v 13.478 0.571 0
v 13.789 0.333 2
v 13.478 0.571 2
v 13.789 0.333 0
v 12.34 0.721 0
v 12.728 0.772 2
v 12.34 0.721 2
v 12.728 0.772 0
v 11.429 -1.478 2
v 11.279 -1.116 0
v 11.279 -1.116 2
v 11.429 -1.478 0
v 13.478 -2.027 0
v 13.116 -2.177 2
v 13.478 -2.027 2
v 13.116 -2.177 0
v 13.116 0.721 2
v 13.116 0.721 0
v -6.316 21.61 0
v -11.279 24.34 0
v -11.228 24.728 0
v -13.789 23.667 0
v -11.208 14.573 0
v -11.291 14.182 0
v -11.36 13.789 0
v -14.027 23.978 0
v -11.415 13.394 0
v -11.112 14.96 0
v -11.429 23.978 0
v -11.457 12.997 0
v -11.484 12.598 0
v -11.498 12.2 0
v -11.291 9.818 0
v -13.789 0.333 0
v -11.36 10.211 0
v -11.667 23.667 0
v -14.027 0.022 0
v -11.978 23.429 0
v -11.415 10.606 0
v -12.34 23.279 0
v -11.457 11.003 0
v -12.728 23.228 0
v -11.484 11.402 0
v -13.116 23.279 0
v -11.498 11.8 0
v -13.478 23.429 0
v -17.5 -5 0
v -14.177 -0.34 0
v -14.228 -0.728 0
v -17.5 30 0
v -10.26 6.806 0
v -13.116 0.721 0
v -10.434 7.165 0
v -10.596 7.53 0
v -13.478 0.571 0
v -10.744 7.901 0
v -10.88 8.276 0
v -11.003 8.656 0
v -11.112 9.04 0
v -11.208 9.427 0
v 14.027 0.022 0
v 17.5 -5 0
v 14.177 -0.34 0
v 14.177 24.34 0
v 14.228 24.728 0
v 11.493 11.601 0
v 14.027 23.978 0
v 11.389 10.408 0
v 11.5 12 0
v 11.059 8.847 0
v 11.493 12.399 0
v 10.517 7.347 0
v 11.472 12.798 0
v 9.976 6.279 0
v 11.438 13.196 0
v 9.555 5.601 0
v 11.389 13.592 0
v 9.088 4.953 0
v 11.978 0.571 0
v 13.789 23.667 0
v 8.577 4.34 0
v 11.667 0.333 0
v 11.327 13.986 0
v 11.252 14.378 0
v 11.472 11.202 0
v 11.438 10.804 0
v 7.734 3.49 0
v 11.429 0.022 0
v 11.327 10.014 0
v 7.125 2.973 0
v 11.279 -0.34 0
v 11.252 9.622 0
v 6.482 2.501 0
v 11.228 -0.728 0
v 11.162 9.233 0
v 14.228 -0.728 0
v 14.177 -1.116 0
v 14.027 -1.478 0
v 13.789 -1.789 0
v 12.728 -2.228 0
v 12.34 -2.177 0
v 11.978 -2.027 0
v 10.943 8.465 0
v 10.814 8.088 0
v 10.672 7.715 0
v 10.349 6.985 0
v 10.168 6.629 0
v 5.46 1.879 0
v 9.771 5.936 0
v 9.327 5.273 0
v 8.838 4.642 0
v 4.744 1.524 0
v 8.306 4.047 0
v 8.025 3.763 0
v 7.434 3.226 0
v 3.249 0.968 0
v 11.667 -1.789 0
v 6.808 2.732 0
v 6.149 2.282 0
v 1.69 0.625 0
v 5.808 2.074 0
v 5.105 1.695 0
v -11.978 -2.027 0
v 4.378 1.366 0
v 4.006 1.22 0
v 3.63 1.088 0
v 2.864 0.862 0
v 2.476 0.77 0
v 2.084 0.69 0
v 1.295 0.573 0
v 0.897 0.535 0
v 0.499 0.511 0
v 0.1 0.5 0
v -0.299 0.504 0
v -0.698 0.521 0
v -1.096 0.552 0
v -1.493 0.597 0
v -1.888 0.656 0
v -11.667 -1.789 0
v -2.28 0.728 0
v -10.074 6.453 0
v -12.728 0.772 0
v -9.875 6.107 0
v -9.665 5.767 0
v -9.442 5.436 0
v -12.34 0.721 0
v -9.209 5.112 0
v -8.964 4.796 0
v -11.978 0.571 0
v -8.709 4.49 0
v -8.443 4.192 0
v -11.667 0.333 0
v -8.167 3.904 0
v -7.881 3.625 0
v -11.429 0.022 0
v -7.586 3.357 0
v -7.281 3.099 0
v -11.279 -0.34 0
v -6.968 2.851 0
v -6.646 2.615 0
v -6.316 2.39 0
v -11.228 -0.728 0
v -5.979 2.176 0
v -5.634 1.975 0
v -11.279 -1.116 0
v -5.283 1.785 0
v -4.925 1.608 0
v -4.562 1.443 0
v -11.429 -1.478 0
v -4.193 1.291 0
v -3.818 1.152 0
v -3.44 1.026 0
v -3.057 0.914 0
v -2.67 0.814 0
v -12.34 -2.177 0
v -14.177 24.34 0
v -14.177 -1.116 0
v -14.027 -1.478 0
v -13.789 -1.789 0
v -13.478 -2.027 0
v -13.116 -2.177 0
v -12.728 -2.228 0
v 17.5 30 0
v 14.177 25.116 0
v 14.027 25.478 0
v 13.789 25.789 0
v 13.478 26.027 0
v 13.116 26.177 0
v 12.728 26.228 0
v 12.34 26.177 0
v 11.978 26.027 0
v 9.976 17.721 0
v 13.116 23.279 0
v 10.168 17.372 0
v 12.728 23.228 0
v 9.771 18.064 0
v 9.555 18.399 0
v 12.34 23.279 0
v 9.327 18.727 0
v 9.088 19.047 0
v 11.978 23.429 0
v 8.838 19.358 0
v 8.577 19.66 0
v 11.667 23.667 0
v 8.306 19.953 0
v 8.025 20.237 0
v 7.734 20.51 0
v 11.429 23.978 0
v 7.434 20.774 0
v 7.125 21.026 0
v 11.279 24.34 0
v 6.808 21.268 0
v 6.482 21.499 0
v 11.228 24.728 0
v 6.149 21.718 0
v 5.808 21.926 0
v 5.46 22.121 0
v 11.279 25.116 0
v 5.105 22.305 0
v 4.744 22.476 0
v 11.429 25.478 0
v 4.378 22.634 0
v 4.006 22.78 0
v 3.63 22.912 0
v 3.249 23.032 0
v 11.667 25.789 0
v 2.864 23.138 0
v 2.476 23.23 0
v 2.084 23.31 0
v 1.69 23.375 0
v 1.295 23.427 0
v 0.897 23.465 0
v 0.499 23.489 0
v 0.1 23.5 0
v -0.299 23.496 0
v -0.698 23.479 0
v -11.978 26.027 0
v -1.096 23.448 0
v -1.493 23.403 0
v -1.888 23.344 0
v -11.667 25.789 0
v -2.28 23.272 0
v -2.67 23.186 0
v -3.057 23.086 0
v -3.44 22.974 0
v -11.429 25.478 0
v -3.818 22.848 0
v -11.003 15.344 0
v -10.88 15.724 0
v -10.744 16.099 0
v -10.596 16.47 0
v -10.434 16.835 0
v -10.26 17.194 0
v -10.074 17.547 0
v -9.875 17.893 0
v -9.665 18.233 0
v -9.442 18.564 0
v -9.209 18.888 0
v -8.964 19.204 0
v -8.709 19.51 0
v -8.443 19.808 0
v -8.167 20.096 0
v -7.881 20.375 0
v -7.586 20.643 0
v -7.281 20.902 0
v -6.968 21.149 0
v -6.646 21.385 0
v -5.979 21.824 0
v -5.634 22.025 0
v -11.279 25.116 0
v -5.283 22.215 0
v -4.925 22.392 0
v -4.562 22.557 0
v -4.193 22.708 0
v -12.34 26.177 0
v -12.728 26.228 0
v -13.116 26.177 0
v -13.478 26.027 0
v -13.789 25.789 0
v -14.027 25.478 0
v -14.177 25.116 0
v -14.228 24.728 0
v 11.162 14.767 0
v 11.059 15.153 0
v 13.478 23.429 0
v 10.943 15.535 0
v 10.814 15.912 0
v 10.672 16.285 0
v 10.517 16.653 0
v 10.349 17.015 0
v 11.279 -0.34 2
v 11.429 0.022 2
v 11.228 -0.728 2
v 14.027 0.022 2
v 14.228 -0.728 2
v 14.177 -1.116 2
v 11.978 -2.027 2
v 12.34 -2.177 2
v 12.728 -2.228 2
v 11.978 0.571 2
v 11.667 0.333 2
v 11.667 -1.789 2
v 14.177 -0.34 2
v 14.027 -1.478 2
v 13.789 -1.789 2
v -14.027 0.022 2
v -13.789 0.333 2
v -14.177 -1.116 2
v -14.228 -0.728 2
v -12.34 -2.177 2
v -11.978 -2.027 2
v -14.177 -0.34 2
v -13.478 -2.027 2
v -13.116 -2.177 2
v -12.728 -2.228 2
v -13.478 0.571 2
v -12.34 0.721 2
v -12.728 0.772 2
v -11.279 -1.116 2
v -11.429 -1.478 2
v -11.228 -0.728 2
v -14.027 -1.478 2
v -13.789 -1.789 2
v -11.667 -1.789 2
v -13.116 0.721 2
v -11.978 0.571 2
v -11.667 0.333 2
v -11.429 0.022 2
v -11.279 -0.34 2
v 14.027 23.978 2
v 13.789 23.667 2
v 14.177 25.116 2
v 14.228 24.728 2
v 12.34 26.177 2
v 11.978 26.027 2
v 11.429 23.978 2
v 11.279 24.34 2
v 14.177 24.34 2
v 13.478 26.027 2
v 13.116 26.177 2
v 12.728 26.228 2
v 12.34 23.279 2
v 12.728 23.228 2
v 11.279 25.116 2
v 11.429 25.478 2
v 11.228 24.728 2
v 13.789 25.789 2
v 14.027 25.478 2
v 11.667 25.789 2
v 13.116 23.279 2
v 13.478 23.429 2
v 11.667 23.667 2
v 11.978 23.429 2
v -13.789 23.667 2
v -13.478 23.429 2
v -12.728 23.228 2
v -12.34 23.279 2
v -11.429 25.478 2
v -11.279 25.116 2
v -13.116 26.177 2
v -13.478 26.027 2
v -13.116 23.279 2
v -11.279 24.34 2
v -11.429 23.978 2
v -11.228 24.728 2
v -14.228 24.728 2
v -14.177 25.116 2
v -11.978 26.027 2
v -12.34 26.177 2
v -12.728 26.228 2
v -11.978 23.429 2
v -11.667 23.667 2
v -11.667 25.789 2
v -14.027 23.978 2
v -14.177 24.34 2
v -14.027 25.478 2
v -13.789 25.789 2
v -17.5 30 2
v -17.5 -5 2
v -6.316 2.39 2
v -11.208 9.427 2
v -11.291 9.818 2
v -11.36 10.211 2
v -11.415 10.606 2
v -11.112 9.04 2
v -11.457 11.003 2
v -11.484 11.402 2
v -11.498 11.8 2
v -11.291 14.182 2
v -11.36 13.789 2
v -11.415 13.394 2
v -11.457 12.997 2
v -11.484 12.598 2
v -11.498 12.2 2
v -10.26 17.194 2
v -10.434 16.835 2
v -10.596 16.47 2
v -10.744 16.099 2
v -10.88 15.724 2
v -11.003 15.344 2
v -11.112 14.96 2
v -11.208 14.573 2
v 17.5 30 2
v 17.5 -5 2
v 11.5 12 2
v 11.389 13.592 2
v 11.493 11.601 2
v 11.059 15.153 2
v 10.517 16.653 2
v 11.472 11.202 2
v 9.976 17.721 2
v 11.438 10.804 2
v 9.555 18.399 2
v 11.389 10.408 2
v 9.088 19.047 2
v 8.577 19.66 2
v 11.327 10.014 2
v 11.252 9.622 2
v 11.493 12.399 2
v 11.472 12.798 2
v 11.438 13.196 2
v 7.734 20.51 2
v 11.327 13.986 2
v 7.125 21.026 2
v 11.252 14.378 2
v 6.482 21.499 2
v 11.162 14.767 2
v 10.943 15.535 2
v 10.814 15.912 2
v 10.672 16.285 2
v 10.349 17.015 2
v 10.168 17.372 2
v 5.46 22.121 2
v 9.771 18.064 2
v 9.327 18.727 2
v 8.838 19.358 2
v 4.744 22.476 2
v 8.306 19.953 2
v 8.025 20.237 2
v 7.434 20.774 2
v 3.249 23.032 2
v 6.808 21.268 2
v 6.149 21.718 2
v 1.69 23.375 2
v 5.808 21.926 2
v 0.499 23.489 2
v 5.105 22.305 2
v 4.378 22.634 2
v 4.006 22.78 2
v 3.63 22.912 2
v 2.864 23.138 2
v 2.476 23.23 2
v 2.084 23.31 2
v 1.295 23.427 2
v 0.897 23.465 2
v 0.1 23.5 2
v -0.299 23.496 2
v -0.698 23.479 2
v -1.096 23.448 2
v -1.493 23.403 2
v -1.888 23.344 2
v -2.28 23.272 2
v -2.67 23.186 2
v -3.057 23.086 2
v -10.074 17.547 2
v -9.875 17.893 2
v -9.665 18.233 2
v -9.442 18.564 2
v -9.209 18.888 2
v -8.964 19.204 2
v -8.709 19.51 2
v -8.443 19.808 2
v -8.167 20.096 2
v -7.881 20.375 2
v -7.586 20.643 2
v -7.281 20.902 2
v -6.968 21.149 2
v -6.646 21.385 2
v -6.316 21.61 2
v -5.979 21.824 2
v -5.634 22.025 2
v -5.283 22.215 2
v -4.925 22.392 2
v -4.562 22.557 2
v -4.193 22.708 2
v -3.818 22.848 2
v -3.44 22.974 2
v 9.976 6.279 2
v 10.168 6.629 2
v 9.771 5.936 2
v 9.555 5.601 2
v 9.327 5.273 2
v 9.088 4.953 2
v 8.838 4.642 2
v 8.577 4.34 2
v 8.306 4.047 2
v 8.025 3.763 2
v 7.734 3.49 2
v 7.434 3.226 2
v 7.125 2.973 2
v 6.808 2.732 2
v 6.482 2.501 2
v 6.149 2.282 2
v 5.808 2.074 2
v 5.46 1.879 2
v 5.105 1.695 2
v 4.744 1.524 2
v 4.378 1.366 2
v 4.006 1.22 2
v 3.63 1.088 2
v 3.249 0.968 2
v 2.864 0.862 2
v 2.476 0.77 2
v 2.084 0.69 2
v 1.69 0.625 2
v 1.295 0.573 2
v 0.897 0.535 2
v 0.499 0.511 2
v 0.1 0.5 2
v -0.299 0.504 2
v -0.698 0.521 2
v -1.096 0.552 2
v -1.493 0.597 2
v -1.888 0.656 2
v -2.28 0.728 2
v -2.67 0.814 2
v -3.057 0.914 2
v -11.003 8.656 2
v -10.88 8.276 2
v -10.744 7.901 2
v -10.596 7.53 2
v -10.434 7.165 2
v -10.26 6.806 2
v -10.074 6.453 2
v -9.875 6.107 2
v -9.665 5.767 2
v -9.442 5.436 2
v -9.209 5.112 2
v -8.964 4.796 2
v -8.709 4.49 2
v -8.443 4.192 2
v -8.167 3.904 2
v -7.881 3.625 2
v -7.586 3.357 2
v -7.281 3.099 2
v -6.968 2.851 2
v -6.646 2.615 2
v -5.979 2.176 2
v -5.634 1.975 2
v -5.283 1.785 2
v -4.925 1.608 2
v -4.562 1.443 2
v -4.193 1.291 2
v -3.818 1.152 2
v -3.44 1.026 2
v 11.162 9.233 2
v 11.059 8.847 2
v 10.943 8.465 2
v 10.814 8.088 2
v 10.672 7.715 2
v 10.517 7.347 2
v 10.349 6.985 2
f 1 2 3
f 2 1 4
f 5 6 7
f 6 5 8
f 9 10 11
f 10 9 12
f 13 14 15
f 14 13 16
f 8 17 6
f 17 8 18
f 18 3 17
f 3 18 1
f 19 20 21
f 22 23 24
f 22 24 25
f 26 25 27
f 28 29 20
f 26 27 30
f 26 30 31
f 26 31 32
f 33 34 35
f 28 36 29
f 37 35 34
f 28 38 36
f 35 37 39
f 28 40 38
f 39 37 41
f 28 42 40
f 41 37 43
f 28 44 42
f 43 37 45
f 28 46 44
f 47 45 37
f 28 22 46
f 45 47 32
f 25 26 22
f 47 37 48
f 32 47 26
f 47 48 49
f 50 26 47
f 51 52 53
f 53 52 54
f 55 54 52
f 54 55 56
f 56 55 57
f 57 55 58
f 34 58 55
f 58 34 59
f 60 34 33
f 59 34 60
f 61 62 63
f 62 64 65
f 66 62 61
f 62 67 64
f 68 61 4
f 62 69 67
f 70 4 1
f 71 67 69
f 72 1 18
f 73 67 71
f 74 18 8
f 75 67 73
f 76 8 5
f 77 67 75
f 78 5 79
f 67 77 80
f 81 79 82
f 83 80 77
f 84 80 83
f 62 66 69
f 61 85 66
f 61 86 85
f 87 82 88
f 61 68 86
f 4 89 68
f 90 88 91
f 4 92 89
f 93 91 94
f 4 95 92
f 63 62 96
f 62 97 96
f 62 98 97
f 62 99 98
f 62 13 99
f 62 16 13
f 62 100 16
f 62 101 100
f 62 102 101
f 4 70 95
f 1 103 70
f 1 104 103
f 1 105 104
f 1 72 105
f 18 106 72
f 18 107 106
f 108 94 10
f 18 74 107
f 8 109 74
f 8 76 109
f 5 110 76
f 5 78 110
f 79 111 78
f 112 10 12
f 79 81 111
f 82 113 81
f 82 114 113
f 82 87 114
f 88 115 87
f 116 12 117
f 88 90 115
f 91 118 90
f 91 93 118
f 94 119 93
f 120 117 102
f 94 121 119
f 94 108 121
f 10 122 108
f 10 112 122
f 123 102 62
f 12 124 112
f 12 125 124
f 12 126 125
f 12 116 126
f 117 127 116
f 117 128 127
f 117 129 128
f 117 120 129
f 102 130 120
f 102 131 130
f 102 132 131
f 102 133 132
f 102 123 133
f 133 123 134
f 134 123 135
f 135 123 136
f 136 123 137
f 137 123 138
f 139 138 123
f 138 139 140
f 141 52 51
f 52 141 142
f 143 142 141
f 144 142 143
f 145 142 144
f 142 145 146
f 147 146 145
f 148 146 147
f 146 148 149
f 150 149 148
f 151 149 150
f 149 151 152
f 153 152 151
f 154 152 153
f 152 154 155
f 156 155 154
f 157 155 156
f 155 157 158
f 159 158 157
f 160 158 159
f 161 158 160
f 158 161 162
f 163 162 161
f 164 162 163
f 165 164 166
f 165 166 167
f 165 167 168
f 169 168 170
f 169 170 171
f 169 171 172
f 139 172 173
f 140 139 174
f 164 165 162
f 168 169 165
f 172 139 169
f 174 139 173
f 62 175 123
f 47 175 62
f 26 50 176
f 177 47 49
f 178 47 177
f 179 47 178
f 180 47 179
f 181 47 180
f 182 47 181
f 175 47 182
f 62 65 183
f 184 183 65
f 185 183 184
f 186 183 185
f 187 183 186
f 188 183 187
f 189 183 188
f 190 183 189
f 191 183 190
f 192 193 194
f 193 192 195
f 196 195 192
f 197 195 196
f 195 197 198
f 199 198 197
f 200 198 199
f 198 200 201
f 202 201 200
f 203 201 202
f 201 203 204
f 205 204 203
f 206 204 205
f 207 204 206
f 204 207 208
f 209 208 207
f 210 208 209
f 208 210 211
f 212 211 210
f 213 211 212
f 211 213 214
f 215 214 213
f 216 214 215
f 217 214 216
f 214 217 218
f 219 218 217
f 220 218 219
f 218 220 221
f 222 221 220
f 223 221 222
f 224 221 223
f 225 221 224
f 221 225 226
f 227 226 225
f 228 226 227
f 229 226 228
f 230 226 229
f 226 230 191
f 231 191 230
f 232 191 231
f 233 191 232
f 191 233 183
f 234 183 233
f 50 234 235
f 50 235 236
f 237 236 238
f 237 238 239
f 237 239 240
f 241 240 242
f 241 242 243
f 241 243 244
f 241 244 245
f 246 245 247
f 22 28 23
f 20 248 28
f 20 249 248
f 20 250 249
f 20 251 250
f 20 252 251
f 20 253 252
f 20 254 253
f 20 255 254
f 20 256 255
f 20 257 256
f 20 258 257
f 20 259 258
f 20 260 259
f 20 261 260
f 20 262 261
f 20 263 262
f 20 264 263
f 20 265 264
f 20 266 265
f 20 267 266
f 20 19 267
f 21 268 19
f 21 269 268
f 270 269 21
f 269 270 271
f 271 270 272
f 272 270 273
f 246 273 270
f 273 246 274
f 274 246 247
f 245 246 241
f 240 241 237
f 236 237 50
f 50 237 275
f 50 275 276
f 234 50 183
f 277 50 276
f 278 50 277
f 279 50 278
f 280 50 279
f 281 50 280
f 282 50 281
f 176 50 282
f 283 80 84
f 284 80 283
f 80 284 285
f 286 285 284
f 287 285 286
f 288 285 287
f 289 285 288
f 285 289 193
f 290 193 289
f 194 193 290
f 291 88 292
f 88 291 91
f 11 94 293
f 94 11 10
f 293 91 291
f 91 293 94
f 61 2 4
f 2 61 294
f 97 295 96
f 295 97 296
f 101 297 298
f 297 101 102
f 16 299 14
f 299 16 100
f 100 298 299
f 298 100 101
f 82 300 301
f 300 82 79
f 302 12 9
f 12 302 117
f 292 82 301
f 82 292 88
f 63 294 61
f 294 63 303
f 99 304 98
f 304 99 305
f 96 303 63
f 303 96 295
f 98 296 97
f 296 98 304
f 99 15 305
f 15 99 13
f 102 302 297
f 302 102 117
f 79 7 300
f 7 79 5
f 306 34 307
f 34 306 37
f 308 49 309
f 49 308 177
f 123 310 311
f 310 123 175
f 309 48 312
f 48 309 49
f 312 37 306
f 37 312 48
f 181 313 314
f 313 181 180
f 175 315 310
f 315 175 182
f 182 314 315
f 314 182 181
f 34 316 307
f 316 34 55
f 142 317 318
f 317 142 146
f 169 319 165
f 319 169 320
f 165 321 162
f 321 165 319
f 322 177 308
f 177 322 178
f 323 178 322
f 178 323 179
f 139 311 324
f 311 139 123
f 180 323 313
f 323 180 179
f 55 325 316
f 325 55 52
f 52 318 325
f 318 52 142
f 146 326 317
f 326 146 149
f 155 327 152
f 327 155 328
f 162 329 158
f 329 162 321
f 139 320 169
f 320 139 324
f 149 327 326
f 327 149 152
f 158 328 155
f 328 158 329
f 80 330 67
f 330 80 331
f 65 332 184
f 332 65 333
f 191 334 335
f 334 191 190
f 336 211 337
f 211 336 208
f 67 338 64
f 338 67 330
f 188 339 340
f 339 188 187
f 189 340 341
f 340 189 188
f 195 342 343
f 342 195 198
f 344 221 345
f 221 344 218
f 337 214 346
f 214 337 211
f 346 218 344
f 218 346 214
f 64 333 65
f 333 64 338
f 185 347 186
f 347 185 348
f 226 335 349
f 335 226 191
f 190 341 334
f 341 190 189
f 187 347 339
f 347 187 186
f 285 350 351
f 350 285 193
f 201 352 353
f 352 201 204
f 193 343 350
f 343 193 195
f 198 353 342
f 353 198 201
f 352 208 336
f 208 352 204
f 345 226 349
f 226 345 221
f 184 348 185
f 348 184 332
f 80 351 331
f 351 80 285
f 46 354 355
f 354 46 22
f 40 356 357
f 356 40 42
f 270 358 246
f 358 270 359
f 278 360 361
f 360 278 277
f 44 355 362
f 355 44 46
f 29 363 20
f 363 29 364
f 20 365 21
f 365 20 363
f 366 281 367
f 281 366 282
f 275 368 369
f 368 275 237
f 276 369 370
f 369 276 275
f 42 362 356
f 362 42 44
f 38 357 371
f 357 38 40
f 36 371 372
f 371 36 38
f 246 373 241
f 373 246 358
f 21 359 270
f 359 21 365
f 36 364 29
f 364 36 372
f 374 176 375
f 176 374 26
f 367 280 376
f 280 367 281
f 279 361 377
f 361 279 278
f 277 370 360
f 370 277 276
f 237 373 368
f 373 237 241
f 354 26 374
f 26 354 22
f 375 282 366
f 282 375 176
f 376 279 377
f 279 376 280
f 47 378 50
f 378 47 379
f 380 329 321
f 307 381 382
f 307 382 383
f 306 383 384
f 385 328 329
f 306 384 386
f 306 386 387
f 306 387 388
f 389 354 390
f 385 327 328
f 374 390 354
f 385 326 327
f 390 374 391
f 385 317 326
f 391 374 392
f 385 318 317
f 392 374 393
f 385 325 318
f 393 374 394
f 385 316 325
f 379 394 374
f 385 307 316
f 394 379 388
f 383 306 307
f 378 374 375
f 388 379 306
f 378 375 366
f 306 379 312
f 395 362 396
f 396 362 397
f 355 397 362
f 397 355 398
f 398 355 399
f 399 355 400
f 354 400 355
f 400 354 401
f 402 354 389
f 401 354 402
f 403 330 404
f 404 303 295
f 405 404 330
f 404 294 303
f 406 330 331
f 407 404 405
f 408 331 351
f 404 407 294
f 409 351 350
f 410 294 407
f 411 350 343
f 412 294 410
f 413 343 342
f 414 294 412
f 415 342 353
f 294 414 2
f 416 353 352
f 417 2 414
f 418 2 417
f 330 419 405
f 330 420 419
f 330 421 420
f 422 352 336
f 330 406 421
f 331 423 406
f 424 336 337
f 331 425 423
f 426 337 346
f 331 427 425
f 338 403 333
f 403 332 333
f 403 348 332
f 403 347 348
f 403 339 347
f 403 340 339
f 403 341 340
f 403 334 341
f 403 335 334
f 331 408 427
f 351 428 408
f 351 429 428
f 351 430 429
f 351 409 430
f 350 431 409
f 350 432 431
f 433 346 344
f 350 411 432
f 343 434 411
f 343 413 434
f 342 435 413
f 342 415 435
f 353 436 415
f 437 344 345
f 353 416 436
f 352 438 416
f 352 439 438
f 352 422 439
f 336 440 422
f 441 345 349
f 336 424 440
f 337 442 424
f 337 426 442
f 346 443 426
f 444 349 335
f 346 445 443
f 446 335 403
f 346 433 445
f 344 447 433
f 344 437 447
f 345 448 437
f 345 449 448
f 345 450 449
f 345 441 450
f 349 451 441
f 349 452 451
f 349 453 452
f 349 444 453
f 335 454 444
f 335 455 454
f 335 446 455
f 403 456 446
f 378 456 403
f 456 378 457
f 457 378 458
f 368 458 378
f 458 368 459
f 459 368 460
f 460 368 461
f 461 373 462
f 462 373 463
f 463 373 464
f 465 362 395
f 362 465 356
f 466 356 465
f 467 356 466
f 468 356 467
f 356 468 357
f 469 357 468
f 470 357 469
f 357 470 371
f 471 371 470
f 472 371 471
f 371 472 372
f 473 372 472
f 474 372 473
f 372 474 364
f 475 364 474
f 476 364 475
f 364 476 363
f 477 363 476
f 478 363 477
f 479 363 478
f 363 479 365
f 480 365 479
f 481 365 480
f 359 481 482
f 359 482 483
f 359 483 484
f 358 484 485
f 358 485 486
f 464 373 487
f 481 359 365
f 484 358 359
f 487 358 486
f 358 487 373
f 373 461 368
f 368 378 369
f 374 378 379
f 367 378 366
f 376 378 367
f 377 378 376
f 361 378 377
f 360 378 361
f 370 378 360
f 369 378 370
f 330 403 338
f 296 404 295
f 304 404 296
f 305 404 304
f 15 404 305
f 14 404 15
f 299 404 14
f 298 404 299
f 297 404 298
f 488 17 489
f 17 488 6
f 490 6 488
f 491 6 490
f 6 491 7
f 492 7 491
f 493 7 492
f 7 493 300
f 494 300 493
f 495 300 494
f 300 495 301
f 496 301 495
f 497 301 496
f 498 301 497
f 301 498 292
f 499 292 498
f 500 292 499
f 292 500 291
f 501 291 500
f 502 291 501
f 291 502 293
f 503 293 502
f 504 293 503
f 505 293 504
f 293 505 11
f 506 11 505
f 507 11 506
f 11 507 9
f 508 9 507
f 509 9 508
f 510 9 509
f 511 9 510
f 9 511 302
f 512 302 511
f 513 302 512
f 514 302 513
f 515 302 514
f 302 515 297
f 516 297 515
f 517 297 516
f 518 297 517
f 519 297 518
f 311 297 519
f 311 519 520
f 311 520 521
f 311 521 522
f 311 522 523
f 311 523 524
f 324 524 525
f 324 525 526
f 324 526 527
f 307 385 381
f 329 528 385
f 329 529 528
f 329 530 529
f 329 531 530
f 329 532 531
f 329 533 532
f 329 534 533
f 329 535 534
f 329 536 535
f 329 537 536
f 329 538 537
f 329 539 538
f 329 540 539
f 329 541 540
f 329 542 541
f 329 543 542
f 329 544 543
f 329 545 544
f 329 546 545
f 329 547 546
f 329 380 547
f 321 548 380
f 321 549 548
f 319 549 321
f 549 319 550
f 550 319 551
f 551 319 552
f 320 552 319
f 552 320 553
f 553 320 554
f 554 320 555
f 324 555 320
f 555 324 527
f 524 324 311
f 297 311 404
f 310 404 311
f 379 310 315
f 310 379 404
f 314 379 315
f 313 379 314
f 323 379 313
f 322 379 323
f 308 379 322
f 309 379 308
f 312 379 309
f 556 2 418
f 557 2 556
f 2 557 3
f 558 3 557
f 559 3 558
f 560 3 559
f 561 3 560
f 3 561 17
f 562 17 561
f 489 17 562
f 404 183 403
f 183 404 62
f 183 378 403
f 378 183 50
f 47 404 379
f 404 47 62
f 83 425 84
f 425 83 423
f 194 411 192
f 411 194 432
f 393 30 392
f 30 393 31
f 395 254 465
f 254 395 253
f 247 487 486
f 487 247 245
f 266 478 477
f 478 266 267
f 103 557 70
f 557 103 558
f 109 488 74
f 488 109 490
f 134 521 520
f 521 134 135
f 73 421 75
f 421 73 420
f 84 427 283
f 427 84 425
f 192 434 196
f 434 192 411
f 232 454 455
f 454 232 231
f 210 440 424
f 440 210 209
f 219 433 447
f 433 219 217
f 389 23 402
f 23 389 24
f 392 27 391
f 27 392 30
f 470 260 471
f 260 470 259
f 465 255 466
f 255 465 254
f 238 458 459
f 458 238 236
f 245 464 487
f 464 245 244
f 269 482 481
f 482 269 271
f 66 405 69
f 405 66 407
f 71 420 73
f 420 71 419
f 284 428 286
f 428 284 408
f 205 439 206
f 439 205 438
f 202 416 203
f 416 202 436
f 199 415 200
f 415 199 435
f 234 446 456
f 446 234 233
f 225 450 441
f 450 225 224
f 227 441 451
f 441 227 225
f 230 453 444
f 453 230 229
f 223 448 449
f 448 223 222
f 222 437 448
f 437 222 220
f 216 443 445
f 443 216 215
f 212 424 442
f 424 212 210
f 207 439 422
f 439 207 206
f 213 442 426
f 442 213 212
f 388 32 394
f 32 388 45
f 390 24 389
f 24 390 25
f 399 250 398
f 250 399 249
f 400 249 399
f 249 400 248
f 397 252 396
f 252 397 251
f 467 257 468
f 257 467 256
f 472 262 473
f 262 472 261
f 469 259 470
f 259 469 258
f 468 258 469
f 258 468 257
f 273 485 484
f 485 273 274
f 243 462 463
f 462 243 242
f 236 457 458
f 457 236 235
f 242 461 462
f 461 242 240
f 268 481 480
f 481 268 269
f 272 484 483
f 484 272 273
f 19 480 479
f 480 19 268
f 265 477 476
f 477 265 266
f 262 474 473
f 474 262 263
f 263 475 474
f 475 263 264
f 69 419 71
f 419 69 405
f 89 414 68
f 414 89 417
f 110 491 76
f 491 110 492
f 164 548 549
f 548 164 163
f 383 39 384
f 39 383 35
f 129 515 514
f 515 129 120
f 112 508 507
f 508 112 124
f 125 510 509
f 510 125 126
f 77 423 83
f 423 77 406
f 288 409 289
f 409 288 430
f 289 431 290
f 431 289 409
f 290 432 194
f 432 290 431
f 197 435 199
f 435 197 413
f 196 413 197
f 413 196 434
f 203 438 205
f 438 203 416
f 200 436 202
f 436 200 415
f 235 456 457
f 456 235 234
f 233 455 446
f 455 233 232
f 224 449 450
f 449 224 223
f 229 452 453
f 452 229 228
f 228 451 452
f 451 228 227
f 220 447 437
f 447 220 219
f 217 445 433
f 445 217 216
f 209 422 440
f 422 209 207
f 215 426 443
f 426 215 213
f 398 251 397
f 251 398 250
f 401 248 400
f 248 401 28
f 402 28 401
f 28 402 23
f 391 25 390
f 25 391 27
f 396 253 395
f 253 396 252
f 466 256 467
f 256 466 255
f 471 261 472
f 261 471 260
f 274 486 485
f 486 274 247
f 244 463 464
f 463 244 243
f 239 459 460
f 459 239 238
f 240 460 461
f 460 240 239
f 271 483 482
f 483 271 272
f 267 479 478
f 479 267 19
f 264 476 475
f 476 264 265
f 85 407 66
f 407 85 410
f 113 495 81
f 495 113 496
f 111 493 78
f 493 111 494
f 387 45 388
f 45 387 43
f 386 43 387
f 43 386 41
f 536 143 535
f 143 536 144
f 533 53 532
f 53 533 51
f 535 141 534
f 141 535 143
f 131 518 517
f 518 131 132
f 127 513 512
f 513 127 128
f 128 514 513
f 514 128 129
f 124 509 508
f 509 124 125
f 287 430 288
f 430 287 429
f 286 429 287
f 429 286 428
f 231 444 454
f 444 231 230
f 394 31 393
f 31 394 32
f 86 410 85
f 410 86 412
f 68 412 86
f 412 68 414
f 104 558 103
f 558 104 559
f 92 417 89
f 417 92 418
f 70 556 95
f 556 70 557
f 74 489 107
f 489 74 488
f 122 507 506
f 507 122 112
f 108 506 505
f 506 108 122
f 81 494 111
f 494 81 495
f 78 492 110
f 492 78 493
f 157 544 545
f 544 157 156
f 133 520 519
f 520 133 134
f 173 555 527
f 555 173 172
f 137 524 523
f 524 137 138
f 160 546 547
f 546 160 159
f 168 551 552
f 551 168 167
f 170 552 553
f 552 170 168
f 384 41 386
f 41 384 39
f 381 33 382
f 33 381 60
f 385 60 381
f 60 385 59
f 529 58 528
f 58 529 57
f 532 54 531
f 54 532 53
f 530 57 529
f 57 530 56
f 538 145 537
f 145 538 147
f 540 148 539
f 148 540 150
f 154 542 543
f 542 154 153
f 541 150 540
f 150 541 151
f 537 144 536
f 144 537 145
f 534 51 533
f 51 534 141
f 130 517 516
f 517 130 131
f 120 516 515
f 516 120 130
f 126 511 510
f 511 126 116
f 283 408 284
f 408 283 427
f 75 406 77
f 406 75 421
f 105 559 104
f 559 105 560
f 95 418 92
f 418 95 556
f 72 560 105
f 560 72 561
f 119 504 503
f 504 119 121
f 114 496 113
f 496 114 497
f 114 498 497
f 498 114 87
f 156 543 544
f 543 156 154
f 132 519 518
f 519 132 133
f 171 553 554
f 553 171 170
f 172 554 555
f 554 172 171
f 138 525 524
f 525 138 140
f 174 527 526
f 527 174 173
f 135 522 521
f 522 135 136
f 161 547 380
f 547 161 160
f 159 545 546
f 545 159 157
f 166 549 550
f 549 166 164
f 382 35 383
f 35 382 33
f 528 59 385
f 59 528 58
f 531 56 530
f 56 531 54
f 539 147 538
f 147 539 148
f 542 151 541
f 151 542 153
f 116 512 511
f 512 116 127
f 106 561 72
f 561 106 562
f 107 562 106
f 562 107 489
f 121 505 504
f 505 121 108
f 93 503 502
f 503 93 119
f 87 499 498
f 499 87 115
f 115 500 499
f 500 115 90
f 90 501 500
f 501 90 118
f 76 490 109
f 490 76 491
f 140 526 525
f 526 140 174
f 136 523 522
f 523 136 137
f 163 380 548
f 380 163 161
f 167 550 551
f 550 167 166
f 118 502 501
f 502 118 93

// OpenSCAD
// dia - 26
$fa = 1;
$fs = 0.4;

module focuser_knob() {
  difference() {
    cylinder(r = 20, h = 1);
    cylinder(r = 13, h = 2);
    rotate(0) 
      translate([16.25,0,0]) 
        cylinder(r = 2, h = 2);
    rotate(120) 
      translate([16.25,0,0]) 
        cylinder(r = 2, h = 2);
    rotate(240) 
      translate([16.25,0,0]) 
        cylinder(r = 2, h = 2);
  }
  //translate([0,0,0])
  //  cylinder(r = 16, h = 2, $fn = 3);
}

module nema14() {
  difference() {
    translate([-17.5,-5,0])
      cube([35,35,2]);
    
    translate([0,12,-1])
      cylinder(r=11.5, h=7);
    translate([0,12,0]) {
      rotate(45)
        translate([0,-18,0])
          cylinder(r=3/2, h=7);
      rotate(45+90)
        translate([0,18,0])
          cylinder(r=3/2, h=7);
      rotate(-45)
        translate([0,18,0])
          cylinder(r=3/2, h=7);
      rotate(-(90+45))
        translate([0,-18,0])
          cylinder(r=3/2, h=7);
    }
  }
}

nema14();
